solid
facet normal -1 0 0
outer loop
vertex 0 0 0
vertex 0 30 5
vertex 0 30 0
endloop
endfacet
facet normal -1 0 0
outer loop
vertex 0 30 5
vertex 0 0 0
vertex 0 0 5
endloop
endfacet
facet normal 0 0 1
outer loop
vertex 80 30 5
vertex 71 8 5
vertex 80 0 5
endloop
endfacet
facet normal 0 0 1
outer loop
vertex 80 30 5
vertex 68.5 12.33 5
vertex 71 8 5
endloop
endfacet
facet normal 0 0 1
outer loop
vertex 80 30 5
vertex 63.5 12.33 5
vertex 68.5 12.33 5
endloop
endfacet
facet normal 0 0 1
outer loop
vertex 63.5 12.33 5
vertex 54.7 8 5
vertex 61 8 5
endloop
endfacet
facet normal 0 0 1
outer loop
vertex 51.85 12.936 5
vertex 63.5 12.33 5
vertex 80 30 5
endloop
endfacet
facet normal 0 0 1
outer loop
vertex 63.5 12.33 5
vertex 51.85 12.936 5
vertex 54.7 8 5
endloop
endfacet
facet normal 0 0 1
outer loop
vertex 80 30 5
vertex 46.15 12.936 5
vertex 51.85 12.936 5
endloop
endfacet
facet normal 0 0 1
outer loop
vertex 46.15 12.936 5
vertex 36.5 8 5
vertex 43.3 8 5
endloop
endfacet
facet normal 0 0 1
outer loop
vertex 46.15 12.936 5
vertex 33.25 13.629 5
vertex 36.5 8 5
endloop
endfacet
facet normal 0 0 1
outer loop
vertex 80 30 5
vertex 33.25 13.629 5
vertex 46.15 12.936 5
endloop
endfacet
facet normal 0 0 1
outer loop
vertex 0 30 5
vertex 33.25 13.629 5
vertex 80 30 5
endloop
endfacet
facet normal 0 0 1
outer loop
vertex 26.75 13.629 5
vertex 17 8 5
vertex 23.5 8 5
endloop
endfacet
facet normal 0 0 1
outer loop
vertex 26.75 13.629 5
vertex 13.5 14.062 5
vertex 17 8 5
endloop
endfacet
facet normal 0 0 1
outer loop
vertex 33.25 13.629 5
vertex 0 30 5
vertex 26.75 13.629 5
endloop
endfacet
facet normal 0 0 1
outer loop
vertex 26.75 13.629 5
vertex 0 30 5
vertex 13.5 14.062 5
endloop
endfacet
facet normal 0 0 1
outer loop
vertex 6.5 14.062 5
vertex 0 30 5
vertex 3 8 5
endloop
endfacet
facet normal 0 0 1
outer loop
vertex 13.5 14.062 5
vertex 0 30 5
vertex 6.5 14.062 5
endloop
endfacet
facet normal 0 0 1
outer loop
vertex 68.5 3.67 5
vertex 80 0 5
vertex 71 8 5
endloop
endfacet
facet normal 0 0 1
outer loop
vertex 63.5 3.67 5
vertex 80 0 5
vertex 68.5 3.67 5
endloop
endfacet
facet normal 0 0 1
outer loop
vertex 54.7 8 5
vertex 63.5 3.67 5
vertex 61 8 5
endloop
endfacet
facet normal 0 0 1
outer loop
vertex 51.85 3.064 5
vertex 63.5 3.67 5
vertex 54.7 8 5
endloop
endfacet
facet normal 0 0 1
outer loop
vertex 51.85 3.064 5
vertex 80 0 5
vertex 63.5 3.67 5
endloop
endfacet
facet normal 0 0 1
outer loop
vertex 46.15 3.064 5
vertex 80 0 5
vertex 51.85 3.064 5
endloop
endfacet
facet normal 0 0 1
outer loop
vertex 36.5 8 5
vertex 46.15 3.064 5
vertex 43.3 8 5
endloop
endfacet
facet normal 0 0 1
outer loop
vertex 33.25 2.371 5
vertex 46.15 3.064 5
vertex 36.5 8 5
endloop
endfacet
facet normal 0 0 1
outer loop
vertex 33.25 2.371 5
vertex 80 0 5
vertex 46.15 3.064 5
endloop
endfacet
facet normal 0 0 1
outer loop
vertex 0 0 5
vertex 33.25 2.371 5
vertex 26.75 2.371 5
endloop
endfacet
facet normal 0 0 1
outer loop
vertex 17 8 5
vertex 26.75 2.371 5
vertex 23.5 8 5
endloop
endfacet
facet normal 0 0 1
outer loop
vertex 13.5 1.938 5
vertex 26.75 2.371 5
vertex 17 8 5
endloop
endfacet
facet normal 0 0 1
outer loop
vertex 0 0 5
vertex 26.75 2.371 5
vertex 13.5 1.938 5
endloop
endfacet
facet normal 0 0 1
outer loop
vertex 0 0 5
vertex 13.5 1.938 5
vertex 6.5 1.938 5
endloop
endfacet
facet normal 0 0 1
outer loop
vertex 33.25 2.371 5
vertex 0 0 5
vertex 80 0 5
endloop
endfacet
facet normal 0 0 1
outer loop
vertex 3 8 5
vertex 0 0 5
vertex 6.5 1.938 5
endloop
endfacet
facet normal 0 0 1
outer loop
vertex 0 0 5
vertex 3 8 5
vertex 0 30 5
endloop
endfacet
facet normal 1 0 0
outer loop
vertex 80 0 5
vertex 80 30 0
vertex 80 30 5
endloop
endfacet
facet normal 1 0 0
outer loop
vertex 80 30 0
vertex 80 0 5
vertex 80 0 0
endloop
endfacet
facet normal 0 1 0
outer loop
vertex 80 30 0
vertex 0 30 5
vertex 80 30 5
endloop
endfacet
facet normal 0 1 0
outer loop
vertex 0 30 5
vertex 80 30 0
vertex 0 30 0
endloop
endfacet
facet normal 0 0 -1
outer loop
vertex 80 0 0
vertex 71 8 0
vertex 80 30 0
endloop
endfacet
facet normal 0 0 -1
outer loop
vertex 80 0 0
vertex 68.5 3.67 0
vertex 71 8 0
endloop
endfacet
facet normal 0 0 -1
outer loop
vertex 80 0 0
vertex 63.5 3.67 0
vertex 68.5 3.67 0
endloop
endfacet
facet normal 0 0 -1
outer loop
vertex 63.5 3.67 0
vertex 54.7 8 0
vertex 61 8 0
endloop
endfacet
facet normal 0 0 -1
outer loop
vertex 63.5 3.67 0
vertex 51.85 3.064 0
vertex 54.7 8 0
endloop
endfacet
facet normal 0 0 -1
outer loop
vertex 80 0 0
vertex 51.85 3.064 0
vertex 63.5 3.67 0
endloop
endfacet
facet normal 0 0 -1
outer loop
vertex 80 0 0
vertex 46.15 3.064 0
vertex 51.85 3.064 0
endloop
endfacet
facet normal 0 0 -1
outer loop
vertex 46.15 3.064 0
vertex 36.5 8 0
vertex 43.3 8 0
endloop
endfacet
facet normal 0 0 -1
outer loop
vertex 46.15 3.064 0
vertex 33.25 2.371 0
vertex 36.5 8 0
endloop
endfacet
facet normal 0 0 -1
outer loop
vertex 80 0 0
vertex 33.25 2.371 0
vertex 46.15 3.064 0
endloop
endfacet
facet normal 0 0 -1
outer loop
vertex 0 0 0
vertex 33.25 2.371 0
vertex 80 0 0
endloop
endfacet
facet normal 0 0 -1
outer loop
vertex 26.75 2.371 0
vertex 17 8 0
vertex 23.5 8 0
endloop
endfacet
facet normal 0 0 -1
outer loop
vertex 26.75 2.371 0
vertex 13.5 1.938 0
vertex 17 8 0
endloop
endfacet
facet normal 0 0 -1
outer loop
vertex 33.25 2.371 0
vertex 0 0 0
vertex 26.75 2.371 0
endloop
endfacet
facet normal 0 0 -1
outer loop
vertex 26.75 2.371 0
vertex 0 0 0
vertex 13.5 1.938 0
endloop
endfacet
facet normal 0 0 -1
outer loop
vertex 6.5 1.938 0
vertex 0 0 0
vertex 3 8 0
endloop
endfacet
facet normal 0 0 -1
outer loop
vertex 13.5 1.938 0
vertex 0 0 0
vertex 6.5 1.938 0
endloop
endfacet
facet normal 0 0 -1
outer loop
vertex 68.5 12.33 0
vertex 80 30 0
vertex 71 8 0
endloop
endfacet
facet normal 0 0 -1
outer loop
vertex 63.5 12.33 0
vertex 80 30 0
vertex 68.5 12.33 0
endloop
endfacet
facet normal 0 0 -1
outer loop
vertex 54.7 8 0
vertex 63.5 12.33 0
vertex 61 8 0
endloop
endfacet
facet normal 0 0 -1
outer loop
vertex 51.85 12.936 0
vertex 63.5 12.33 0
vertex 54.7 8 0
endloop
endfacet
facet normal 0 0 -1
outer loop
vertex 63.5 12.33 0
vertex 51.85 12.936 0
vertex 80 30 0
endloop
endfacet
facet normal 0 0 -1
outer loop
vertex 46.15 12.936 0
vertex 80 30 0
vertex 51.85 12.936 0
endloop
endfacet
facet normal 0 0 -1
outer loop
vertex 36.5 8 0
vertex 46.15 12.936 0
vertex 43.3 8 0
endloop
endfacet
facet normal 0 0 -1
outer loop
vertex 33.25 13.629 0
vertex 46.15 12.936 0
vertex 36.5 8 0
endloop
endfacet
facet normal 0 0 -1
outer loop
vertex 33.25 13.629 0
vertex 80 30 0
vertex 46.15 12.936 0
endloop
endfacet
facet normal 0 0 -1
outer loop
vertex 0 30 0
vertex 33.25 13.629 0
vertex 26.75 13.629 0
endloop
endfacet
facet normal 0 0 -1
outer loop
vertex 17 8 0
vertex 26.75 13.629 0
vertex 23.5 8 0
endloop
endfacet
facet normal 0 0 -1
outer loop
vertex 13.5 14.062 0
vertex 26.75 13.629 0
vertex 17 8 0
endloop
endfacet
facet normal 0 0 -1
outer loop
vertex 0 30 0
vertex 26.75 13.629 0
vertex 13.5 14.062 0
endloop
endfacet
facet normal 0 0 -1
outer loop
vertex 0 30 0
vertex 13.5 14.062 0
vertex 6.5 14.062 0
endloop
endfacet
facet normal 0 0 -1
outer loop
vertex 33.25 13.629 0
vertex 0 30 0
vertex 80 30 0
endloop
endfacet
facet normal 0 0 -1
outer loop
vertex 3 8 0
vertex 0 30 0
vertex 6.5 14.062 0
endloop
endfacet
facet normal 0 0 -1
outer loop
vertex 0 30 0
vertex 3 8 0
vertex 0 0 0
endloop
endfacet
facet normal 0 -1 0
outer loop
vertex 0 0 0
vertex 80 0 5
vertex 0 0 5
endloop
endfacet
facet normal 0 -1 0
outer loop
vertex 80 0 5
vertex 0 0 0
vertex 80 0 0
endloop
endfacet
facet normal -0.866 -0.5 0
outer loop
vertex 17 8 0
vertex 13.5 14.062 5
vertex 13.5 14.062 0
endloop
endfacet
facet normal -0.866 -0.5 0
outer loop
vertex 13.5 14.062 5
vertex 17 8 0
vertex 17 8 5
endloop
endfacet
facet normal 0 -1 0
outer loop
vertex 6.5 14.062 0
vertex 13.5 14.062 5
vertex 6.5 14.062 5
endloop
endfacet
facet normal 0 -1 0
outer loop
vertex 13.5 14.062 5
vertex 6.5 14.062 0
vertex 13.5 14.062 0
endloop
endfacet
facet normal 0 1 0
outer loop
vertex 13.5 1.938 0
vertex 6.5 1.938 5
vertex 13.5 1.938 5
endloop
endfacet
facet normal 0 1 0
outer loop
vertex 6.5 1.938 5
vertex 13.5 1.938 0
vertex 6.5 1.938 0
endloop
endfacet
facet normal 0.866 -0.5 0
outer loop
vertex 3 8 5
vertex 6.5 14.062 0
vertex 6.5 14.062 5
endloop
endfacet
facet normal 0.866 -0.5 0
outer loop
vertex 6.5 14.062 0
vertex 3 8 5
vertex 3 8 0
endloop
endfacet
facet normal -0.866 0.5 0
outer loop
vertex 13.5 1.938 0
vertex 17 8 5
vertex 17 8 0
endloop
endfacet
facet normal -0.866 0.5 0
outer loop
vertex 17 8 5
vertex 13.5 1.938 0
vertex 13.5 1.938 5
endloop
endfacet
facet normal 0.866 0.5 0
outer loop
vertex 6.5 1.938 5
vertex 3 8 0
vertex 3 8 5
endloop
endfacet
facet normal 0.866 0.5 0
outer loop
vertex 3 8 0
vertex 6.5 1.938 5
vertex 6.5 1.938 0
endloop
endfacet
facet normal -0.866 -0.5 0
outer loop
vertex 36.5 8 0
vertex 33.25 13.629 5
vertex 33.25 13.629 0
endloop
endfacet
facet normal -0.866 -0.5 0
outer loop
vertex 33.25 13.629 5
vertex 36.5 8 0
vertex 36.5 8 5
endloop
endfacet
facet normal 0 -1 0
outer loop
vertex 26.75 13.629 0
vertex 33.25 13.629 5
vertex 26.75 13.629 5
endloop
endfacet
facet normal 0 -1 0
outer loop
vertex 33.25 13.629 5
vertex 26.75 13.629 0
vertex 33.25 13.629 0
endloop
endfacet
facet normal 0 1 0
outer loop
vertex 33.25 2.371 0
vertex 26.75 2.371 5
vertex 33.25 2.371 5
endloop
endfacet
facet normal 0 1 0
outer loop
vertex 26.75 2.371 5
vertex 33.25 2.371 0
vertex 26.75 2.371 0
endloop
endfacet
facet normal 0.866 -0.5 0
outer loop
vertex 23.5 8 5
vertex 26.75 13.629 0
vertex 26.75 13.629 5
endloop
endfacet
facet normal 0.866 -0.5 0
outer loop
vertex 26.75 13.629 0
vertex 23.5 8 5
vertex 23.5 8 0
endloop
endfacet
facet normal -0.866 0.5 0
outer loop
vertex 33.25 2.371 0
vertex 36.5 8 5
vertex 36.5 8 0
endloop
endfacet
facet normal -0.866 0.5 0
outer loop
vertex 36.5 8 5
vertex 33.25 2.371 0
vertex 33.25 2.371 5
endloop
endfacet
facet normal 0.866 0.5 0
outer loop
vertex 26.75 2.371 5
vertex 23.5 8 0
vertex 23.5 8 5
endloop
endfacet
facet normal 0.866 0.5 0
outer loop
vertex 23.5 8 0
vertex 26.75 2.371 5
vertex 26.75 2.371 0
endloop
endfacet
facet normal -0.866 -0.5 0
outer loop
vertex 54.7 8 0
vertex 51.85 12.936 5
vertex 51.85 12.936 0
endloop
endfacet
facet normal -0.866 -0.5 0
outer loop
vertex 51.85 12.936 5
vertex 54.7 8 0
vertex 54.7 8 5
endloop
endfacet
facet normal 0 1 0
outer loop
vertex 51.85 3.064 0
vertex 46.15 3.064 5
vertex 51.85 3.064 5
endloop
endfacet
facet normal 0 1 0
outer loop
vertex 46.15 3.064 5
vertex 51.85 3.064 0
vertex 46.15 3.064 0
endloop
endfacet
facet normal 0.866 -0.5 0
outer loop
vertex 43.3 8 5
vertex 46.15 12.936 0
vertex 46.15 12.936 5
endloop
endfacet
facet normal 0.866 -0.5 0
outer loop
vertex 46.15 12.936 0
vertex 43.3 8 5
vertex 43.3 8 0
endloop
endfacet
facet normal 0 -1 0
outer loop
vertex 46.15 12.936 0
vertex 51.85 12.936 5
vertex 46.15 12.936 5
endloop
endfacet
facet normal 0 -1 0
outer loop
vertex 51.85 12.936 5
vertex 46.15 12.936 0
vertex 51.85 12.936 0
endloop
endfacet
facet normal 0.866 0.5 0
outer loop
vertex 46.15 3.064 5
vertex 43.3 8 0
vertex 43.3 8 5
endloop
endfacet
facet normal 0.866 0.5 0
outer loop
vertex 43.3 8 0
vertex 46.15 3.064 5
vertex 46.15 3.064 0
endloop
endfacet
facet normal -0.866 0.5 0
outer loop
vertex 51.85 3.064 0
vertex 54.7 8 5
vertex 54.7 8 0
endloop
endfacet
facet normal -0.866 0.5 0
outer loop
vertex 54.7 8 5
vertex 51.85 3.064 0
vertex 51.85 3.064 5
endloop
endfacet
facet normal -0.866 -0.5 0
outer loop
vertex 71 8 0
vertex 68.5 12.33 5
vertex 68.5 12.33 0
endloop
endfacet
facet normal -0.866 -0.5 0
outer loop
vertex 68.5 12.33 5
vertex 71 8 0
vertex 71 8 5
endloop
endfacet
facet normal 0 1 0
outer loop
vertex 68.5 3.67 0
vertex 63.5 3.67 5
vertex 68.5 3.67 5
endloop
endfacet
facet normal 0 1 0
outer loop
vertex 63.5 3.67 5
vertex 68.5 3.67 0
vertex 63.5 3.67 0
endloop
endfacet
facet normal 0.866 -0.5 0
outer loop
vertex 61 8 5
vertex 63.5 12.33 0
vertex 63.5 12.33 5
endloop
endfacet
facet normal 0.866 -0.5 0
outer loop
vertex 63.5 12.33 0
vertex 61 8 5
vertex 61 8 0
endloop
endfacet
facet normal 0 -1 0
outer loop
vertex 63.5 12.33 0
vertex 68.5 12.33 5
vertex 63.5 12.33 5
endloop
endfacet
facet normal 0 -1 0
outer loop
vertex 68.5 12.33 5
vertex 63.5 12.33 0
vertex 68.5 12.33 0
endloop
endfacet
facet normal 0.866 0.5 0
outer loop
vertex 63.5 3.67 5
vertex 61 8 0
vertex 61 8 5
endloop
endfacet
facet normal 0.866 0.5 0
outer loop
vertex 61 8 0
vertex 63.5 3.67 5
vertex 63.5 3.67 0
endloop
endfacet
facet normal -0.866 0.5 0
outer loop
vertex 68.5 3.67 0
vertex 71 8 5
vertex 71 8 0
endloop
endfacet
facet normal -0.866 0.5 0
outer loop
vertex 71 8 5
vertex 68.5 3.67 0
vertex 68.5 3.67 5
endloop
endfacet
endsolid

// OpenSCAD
difference() {
  translate([40.0000000000, 15.0000000000, 2.5000000000]) {
    scale([80.0000000000, 30.0000000000, 5.0000000000]) {
      translate([-0.5000000000, -0.5000000000, -0.5000000000]) {
        cube([1, 1, 1]);
      }
    }
  }
  union() {
    union() {
      union() {
        difference() {
          translate([66.0000000000, 8.0000000000, 2.5000000000]) {
            scale([10.0000000000, 8.6600000000, 5.0000000000]) {
              rotate([0.0000000000, 0.0000000000, -0.0000000000]) {
                scale([0.5, 0.577, 1]) cylinder($fn = 6, center = true);
              }
            }
          }
          /* EMPTY */ sphere(r = 0);
        }
        difference() {
          translate([49.0000500000, 7.9999874480, 2.5000000000]) {
            scale([11.4000000000, 9.8720000000, 5.0000000000]) {
              rotate([0.0000000000, 0.0000000000, -0.0000000000]) {
                scale([0.5, 0.577, 1]) cylinder($fn = 6, center = true);
              }
            }
          }
          /* EMPTY */ sphere(r = 0);
        }
      }
      difference() {
        translate([30.0000000000, 8.0000000000, 2.5000000000]) {
          scale([13.0000000000, 11.2580000000, 5.0000000000]) {
            rotate([0.0000000000, 0.0000000000, -0.0000000000]) {
              scale([0.5, 0.577, 1]) cylinder($fn = 6, center = true);
            }
          }
        }
        /* EMPTY */ sphere(r = 0);
      }
    }
    difference() {
      translate([10.0000000000, 8.0000000000, 2.5000000000]) {
        scale([14.0000000000, 12.1240000000, 5.0000000000]) {
          rotate([0.0000000000, 0.0000000000, -0.0000000000]) {
            scale([0.5, 0.577, 1]) cylinder($fn = 6, center = true);
          }
        }
      }
      /* EMPTY */ sphere(r = 0);
    }
  }
}
